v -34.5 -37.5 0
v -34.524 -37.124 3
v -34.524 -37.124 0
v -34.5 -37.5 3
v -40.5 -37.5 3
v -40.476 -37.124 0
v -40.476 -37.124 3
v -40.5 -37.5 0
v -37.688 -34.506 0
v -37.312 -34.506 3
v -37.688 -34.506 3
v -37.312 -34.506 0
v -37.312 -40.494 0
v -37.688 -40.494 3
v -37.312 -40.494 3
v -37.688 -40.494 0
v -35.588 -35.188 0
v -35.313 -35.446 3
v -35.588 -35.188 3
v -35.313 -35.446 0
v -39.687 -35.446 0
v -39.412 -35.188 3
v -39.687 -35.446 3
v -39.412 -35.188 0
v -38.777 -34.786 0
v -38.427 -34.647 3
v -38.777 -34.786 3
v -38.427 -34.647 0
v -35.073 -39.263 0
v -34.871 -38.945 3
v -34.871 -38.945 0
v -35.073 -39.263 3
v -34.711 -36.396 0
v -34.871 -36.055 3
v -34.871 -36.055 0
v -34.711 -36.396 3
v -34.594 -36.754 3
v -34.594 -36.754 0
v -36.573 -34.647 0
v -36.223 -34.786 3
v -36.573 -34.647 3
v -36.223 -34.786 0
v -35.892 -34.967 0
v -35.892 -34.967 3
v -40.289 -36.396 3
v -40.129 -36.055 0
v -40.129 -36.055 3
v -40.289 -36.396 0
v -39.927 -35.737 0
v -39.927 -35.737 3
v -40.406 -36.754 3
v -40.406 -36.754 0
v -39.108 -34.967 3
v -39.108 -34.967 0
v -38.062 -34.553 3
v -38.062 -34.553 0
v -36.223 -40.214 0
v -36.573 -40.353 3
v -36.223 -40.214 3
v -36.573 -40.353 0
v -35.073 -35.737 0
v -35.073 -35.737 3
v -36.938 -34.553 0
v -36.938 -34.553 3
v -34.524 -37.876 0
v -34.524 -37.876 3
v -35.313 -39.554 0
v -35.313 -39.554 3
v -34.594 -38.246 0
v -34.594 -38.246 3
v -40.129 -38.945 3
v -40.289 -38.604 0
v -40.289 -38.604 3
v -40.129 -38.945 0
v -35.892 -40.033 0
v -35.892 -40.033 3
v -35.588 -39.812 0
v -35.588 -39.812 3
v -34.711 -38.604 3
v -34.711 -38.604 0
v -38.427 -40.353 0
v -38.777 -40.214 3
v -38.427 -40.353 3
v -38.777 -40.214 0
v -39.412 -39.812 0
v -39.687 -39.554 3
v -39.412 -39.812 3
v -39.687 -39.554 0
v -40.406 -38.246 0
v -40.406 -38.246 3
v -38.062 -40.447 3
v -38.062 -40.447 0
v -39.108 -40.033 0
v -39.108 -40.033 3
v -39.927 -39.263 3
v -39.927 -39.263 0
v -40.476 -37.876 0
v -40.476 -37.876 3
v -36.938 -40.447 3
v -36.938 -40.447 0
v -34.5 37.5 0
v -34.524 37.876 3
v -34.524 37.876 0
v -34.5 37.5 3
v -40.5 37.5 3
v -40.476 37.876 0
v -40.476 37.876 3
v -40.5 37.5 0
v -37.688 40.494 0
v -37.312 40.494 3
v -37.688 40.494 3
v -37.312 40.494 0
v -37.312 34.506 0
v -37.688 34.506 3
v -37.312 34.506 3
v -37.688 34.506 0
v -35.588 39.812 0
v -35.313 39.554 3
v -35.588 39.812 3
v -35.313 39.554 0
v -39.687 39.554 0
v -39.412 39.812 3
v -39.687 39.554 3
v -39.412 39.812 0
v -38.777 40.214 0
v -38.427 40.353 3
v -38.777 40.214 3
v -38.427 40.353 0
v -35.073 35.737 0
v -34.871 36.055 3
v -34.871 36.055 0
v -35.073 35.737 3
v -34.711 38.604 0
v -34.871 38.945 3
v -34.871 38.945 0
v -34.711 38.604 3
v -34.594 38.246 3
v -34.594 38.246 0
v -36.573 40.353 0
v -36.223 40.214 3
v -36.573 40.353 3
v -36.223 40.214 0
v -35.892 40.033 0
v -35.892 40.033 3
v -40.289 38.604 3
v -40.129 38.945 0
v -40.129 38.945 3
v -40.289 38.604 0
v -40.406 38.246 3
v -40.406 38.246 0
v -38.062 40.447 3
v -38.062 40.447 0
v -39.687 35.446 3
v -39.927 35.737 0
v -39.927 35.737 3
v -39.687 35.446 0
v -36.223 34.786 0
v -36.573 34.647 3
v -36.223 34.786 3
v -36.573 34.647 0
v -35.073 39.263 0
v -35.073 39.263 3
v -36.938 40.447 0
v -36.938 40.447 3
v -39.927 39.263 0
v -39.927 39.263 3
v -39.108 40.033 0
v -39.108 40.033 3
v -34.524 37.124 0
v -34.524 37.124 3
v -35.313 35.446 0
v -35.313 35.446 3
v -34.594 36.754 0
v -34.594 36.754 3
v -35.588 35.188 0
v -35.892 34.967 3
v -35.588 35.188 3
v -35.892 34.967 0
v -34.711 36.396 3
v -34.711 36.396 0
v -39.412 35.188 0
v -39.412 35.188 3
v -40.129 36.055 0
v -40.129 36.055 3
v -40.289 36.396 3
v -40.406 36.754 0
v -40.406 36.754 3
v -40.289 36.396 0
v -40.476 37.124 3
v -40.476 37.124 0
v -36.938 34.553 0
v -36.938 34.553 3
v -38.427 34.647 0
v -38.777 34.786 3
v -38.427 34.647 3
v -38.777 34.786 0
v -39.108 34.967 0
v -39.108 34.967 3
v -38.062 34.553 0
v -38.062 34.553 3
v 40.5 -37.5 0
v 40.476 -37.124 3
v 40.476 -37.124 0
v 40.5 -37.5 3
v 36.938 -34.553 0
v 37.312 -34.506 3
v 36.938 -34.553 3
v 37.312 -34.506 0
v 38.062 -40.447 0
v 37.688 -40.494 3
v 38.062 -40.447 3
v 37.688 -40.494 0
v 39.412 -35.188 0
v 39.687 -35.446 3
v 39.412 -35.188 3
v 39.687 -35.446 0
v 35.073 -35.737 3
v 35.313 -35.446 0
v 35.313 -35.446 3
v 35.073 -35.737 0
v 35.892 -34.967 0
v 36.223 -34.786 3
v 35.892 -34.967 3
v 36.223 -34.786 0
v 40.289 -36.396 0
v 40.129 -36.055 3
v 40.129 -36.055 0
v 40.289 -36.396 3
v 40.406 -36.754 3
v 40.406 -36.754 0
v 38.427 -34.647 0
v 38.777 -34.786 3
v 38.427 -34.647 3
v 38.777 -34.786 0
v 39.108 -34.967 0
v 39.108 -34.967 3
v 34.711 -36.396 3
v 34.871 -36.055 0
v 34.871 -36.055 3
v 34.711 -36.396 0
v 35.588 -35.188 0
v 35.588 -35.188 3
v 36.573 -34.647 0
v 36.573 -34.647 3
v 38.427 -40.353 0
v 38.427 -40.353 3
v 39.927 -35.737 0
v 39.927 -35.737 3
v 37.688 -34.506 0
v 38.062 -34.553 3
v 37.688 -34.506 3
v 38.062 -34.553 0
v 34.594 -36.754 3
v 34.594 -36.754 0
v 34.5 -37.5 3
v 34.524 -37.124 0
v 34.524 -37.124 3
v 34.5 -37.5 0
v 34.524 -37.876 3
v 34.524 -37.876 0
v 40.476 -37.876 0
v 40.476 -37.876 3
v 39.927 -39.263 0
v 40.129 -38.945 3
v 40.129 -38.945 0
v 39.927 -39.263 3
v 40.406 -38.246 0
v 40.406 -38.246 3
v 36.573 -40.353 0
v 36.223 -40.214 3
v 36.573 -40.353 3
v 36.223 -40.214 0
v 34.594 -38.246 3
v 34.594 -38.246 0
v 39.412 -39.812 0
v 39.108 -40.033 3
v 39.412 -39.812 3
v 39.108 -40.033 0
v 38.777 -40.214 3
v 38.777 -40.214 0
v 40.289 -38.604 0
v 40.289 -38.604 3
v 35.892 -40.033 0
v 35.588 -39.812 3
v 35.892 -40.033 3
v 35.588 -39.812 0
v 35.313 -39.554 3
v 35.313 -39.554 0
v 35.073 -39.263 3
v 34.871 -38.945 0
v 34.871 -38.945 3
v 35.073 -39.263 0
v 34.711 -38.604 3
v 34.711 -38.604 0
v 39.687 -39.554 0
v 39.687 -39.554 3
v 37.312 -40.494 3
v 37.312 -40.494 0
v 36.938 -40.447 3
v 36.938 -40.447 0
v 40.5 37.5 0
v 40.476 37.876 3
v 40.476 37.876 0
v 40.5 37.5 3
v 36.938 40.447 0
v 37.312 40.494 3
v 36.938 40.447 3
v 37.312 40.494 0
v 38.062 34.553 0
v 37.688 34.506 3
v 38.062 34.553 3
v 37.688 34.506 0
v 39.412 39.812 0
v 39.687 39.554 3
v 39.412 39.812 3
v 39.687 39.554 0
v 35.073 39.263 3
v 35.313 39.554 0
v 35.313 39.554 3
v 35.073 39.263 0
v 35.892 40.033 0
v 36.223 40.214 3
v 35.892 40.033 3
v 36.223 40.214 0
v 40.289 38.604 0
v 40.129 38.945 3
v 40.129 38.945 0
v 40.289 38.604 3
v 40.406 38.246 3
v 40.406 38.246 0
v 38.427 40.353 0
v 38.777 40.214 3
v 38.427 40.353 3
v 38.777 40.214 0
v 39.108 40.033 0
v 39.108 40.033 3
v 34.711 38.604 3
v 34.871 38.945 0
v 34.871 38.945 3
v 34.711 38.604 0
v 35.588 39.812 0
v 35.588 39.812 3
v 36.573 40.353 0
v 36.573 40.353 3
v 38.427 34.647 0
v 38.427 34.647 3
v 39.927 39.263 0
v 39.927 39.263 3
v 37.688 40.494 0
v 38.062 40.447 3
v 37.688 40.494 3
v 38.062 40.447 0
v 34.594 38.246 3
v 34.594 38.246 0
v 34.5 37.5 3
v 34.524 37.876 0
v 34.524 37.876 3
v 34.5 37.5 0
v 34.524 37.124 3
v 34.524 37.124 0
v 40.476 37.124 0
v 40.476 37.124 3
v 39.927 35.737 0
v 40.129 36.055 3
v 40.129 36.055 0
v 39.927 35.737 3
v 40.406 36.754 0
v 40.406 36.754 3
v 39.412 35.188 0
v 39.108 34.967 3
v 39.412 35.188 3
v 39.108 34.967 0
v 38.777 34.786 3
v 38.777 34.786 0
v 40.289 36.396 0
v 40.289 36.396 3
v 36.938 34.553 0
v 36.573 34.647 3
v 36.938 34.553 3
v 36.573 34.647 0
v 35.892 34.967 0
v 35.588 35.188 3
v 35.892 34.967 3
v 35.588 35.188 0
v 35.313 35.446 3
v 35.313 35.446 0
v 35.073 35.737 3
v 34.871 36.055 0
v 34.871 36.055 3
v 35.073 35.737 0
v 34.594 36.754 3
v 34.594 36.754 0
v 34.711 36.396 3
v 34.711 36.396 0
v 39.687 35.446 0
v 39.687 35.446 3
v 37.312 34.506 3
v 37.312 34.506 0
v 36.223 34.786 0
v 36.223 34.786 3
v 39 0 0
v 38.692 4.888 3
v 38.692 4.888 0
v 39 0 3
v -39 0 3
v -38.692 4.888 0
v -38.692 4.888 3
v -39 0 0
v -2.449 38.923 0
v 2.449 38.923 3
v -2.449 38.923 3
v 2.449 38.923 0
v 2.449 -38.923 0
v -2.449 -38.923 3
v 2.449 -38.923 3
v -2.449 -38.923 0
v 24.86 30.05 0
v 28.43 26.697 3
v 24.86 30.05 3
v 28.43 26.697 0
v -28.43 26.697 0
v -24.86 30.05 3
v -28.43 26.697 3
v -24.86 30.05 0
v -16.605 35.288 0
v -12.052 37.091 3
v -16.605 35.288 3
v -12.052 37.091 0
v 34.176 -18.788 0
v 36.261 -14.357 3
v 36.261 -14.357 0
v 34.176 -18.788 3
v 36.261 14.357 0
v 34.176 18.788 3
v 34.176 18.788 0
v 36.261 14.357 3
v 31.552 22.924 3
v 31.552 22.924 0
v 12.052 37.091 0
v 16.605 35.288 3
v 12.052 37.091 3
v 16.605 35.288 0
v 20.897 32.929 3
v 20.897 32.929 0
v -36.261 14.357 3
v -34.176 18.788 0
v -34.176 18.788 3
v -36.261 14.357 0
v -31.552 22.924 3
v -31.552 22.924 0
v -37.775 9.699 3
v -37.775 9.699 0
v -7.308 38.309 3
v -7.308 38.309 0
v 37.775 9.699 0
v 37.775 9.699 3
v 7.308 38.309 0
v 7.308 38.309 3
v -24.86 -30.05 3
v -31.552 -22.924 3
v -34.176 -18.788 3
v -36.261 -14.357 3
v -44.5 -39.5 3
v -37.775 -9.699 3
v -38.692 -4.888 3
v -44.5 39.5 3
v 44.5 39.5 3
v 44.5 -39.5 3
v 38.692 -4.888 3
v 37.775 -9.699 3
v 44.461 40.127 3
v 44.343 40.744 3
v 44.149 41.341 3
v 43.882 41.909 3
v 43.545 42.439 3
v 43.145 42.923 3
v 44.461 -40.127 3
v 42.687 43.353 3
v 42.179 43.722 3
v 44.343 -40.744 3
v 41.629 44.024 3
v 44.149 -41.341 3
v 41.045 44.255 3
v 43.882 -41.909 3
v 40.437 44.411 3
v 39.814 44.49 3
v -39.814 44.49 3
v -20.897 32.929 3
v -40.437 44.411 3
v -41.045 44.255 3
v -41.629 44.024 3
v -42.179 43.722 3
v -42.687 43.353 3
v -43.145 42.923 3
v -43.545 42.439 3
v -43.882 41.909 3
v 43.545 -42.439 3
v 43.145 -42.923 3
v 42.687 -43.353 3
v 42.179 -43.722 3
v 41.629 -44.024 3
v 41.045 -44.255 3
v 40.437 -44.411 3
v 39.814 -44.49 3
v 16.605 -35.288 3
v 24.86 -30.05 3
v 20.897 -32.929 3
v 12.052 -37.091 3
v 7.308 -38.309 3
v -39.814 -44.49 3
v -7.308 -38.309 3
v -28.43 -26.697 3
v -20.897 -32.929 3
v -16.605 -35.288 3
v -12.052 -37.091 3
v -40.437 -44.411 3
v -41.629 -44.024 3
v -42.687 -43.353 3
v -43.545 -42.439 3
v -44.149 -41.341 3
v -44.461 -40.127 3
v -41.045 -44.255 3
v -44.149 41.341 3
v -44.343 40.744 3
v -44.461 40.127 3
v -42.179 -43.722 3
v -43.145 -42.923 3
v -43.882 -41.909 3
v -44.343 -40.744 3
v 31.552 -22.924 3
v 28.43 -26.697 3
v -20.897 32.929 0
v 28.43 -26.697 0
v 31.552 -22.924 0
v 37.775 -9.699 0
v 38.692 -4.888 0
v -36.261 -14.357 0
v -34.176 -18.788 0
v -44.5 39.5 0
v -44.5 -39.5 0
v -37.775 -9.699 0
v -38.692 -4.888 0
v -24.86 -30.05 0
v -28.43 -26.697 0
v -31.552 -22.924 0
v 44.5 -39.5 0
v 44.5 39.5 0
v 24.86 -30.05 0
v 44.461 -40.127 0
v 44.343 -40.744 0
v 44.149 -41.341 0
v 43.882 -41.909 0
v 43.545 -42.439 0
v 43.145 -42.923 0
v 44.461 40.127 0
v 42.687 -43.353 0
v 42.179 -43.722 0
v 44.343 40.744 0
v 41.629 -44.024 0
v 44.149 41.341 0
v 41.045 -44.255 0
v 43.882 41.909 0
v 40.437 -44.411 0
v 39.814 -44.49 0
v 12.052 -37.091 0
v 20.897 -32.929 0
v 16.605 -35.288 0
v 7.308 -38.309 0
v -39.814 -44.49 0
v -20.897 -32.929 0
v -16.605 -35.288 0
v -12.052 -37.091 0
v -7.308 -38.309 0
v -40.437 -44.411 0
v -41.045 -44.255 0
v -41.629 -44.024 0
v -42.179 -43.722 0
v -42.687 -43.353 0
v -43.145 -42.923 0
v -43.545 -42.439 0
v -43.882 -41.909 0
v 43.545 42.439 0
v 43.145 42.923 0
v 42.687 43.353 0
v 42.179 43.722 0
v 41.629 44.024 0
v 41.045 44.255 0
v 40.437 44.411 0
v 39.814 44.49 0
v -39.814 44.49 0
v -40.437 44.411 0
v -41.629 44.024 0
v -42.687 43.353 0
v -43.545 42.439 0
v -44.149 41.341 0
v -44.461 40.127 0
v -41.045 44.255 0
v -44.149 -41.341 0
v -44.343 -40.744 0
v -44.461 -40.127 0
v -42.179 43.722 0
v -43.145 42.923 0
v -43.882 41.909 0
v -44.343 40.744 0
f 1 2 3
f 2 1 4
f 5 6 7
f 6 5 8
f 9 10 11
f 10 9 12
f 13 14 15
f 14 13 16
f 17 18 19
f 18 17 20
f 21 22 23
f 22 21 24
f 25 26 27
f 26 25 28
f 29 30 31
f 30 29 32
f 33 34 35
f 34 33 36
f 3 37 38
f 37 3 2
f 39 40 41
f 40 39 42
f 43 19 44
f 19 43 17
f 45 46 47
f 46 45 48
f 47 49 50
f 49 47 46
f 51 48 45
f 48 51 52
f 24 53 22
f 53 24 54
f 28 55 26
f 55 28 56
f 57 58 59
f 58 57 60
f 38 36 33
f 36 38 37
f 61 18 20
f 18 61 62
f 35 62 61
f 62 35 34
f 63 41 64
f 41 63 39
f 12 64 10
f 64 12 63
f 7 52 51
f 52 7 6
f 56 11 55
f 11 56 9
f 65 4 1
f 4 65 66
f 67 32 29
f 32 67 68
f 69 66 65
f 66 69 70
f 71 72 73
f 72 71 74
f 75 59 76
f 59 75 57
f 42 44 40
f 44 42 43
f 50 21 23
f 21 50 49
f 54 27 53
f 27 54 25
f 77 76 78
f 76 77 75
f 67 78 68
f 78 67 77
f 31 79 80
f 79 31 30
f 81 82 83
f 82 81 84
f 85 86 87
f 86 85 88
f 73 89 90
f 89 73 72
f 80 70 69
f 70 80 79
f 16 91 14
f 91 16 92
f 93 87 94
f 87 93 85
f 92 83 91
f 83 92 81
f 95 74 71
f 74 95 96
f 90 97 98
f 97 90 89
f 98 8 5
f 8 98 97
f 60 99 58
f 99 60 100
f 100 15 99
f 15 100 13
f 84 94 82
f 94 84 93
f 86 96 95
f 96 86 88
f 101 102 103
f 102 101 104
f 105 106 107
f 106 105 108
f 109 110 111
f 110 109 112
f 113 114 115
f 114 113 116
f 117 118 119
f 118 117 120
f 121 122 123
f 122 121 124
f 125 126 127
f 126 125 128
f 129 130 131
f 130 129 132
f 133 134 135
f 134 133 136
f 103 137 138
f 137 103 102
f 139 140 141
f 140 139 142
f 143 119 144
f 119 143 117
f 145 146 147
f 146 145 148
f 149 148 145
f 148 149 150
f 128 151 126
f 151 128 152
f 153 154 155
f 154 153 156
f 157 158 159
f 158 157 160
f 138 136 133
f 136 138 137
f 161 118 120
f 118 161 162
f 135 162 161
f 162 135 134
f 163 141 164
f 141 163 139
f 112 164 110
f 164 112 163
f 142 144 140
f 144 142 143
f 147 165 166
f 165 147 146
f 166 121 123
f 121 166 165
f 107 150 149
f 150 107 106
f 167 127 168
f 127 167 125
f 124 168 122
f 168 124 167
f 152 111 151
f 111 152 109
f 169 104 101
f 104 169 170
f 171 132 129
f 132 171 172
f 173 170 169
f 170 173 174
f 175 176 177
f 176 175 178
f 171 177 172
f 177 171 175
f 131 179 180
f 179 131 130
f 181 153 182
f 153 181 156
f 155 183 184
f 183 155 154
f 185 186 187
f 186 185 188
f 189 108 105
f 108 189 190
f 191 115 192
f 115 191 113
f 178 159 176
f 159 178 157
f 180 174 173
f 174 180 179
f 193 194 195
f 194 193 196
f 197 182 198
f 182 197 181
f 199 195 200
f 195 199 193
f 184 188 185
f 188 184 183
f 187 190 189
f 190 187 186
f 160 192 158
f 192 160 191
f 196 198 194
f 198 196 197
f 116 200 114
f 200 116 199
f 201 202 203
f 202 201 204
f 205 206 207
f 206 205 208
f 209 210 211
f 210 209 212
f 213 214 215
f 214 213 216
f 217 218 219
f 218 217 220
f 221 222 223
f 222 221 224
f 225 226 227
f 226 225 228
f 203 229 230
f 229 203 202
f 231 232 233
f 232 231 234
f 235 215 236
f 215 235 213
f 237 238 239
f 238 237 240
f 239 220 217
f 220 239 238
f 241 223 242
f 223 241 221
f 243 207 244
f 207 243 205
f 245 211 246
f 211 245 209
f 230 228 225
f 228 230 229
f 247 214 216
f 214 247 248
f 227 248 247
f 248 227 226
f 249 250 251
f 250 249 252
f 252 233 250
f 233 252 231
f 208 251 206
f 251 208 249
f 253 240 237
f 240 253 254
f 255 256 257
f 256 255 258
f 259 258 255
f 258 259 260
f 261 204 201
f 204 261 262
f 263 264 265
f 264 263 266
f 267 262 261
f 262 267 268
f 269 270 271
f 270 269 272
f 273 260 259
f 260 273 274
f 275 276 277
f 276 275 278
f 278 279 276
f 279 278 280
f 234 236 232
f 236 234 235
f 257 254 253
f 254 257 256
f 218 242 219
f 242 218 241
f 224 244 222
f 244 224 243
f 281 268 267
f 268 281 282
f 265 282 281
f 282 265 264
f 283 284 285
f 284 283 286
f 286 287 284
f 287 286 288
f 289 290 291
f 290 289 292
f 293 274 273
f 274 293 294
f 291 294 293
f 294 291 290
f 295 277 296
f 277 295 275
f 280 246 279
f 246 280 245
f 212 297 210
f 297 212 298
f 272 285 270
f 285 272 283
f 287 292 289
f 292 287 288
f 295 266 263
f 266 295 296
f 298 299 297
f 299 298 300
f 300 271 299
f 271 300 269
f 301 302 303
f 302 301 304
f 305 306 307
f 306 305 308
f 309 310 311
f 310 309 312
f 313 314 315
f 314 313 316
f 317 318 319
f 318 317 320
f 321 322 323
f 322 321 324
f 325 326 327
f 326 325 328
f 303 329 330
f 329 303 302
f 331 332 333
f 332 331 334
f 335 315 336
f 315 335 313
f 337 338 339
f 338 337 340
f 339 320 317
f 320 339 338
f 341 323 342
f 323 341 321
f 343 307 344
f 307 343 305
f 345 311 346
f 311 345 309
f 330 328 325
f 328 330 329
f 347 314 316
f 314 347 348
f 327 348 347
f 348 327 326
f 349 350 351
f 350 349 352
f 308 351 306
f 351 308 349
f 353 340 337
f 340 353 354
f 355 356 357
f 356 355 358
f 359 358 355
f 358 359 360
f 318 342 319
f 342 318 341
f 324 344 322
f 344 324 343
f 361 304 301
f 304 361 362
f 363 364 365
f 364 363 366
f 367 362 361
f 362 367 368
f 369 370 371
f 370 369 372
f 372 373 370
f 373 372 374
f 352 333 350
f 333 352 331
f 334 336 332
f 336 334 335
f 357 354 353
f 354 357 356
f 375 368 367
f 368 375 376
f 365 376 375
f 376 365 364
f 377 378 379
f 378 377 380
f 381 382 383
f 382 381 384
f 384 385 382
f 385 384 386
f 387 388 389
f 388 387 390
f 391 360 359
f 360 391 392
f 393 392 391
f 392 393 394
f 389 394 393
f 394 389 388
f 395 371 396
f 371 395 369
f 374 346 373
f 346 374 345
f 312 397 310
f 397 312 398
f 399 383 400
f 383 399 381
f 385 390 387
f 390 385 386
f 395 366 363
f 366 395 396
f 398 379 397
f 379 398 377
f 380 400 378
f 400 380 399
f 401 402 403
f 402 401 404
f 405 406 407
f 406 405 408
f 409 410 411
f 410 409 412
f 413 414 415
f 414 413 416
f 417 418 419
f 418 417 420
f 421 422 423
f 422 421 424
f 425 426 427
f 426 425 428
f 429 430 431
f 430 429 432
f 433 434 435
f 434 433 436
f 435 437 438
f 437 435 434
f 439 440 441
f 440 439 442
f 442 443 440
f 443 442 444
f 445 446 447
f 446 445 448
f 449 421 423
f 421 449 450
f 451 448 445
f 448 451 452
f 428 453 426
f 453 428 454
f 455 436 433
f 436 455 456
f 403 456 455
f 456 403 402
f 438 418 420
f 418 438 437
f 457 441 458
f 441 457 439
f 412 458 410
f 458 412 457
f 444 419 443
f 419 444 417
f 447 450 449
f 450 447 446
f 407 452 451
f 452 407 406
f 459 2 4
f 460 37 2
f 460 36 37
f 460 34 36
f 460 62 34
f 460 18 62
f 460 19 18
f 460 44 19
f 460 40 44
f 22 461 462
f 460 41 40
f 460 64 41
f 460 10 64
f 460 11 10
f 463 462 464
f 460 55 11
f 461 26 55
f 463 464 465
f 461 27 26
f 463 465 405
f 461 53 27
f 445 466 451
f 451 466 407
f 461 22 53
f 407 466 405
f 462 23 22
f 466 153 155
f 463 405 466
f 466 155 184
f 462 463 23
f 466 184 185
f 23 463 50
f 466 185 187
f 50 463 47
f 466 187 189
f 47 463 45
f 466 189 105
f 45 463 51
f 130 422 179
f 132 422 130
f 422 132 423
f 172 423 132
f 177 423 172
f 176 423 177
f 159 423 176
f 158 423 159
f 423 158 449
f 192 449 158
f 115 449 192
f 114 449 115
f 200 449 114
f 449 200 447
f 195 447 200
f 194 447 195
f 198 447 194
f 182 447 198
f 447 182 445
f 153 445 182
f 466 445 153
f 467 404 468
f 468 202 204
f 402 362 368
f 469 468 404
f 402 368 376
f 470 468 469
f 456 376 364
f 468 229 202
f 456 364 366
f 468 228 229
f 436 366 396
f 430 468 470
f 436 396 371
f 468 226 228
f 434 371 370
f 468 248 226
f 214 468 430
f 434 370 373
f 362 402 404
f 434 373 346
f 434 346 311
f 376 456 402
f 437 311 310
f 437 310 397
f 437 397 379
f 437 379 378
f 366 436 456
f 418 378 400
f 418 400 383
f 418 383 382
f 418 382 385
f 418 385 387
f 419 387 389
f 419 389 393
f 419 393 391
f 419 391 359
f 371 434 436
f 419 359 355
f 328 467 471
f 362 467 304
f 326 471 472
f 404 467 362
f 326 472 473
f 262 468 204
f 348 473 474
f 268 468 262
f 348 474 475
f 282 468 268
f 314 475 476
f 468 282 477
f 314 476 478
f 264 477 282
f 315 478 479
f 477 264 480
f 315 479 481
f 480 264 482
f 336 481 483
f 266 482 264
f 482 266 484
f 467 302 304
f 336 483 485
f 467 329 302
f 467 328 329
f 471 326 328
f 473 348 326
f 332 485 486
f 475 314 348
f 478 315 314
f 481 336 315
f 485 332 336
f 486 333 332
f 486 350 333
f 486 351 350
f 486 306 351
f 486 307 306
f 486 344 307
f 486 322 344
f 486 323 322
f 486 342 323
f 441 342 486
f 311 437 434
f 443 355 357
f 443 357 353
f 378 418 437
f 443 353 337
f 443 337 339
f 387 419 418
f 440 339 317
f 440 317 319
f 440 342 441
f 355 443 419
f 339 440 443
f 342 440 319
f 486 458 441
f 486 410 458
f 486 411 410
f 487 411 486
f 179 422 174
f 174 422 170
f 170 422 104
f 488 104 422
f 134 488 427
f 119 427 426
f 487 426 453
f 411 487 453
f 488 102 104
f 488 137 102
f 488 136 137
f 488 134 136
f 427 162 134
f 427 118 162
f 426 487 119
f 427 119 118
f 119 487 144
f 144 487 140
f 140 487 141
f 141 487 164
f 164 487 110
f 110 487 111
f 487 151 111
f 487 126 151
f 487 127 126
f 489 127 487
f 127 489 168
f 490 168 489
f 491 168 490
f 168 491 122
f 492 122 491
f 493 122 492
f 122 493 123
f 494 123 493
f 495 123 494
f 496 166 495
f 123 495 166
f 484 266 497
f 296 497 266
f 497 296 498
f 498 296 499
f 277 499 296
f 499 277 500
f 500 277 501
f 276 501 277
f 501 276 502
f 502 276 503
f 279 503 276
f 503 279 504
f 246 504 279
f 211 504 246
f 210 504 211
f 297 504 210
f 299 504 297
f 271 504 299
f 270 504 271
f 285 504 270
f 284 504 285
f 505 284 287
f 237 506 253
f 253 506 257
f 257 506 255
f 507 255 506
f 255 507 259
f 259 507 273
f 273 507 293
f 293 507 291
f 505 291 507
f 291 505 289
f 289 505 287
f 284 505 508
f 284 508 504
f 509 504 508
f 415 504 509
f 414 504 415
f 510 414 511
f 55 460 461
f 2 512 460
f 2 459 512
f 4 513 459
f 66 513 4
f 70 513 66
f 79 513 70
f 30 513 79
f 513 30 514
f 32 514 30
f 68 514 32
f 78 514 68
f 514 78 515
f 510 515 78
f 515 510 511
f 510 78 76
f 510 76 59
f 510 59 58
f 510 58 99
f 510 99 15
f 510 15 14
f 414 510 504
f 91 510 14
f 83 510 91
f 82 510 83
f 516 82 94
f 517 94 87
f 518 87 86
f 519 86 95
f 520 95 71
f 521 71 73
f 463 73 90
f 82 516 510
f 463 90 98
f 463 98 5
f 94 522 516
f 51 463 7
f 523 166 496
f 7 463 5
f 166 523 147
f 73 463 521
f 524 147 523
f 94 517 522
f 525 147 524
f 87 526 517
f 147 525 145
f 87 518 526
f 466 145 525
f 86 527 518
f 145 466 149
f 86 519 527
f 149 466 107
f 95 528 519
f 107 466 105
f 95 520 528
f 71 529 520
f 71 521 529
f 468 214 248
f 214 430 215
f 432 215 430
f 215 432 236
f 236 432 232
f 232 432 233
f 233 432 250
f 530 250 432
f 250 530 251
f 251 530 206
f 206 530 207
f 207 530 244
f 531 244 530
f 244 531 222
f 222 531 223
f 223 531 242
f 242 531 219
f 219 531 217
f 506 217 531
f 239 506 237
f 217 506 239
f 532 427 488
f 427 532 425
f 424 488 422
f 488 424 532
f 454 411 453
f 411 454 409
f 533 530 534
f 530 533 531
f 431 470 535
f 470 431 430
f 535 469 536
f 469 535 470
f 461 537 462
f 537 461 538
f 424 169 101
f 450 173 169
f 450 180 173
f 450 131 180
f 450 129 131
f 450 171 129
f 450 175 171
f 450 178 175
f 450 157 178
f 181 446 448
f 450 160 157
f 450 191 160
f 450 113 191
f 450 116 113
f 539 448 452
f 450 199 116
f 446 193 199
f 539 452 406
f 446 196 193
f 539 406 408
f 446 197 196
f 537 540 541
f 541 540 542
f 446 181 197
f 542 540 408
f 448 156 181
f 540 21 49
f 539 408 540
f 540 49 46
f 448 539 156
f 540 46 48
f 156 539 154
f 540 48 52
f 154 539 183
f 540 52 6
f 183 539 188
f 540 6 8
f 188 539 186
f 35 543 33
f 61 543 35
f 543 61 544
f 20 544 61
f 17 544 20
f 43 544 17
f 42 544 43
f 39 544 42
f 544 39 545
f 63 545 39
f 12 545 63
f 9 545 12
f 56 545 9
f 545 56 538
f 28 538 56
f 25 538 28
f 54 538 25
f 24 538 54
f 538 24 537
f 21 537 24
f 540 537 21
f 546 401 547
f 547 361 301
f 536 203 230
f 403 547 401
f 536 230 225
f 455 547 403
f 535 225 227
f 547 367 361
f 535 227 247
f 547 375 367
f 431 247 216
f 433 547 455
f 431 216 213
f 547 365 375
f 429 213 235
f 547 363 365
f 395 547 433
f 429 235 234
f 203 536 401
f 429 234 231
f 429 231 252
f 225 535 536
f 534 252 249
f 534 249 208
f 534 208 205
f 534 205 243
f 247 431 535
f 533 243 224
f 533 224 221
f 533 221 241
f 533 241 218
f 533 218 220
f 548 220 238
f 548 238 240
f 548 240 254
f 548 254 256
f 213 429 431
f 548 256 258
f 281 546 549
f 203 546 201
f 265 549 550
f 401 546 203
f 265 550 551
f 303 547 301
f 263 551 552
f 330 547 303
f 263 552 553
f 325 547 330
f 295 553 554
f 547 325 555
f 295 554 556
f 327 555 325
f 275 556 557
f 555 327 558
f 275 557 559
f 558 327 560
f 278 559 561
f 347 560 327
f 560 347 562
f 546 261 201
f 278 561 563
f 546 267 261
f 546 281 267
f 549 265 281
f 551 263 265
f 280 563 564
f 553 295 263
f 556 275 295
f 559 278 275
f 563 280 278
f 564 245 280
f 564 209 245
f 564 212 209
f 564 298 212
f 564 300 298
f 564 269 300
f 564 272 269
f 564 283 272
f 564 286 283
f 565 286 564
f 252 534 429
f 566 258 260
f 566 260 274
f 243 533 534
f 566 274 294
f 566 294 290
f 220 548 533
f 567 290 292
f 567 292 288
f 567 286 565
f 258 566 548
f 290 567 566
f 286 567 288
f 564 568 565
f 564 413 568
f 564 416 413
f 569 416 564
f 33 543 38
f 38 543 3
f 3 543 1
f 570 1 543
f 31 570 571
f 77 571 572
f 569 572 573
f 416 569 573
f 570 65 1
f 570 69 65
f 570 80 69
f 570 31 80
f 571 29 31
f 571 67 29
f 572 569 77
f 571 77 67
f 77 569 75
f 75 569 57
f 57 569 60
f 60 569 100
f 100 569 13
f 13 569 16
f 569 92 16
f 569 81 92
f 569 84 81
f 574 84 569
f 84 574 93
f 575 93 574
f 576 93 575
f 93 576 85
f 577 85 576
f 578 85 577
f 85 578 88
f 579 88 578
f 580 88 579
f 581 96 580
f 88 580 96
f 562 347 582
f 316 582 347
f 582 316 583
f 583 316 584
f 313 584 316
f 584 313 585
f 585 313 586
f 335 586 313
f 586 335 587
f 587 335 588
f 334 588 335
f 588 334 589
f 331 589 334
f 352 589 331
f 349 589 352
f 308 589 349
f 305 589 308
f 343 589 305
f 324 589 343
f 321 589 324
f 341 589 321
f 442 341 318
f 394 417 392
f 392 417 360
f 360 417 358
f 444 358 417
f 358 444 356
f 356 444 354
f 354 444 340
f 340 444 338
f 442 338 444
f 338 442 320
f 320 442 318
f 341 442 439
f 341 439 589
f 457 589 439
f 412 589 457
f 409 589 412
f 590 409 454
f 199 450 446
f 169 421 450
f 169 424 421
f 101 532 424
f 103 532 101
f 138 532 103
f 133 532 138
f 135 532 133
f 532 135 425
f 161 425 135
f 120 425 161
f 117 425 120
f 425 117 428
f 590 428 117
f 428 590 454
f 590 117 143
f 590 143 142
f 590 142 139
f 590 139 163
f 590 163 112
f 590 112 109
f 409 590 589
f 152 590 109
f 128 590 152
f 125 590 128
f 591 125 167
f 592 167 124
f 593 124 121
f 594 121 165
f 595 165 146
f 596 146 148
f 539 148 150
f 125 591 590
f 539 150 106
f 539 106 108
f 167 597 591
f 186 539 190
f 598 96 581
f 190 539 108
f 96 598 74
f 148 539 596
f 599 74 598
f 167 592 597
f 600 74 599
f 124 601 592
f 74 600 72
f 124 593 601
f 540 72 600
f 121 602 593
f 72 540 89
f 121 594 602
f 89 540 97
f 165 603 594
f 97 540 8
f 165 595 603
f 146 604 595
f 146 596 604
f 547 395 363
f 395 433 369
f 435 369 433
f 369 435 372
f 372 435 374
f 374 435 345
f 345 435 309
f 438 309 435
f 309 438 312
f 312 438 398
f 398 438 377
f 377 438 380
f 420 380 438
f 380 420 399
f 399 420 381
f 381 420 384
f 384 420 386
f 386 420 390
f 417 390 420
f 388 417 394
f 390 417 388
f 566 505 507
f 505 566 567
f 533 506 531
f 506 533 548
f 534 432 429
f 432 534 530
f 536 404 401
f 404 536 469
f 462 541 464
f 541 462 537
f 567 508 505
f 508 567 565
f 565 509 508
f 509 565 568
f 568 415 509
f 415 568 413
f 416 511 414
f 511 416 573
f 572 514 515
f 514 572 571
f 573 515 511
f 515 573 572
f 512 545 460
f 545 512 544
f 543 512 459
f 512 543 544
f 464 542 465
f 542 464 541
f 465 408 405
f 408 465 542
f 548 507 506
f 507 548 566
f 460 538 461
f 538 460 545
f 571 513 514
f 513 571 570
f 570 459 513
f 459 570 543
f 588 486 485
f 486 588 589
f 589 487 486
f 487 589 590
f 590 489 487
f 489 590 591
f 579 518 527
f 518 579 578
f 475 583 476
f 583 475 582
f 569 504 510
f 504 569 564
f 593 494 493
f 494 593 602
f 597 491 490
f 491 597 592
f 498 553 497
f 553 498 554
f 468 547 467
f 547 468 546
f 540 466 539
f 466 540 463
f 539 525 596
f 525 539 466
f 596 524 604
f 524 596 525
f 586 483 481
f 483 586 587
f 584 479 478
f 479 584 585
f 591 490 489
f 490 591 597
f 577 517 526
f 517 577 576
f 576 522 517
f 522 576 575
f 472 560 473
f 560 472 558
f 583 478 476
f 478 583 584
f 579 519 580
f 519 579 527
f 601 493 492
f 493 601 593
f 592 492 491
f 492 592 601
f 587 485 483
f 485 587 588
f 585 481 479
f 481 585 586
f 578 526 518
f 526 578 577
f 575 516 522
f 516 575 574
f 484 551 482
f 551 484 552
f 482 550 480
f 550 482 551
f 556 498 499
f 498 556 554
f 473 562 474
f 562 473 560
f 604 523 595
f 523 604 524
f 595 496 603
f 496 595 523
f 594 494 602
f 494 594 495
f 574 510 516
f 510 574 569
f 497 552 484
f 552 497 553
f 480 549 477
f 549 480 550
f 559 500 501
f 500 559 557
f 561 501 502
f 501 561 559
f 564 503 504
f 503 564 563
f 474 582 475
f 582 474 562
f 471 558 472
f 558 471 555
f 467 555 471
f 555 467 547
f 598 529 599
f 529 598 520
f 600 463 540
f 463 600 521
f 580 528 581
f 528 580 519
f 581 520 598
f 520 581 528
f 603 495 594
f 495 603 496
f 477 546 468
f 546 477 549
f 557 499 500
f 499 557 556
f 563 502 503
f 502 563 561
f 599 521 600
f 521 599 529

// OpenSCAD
$fn = 50;


difference() {
	union() {
		hull() {
			translate(v = [-39.5000000000, 39.5000000000, 0]) {
				cylinder(h = 3, r = 5);
			}
			translate(v = [39.5000000000, 39.5000000000, 0]) {
				cylinder(h = 3, r = 5);
			}
			translate(v = [-39.5000000000, -39.5000000000, 0]) {
				cylinder(h = 3, r = 5);
			}
			translate(v = [39.5000000000, -39.5000000000, 0]) {
				cylinder(h = 3, r = 5);
			}
		}
	}
	union() {
		#translate(v = [-37.5000000000, -37.5000000000, -100.0000000000]) {
			cylinder(h = 200, r = 3.0000000000);
		}
		#translate(v = [-37.5000000000, 37.5000000000, -100.0000000000]) {
			cylinder(h = 200, r = 3.0000000000);
		}
		#translate(v = [37.5000000000, -37.5000000000, -100.0000000000]) {
			cylinder(h = 200, r = 3.0000000000);
		}
		#translate(v = [37.5000000000, 37.5000000000, -100.0000000000]) {
			cylinder(h = 200, r = 3.0000000000);
		}
		#cylinder(h = 3, r = 39.0000000000);
	}
}
